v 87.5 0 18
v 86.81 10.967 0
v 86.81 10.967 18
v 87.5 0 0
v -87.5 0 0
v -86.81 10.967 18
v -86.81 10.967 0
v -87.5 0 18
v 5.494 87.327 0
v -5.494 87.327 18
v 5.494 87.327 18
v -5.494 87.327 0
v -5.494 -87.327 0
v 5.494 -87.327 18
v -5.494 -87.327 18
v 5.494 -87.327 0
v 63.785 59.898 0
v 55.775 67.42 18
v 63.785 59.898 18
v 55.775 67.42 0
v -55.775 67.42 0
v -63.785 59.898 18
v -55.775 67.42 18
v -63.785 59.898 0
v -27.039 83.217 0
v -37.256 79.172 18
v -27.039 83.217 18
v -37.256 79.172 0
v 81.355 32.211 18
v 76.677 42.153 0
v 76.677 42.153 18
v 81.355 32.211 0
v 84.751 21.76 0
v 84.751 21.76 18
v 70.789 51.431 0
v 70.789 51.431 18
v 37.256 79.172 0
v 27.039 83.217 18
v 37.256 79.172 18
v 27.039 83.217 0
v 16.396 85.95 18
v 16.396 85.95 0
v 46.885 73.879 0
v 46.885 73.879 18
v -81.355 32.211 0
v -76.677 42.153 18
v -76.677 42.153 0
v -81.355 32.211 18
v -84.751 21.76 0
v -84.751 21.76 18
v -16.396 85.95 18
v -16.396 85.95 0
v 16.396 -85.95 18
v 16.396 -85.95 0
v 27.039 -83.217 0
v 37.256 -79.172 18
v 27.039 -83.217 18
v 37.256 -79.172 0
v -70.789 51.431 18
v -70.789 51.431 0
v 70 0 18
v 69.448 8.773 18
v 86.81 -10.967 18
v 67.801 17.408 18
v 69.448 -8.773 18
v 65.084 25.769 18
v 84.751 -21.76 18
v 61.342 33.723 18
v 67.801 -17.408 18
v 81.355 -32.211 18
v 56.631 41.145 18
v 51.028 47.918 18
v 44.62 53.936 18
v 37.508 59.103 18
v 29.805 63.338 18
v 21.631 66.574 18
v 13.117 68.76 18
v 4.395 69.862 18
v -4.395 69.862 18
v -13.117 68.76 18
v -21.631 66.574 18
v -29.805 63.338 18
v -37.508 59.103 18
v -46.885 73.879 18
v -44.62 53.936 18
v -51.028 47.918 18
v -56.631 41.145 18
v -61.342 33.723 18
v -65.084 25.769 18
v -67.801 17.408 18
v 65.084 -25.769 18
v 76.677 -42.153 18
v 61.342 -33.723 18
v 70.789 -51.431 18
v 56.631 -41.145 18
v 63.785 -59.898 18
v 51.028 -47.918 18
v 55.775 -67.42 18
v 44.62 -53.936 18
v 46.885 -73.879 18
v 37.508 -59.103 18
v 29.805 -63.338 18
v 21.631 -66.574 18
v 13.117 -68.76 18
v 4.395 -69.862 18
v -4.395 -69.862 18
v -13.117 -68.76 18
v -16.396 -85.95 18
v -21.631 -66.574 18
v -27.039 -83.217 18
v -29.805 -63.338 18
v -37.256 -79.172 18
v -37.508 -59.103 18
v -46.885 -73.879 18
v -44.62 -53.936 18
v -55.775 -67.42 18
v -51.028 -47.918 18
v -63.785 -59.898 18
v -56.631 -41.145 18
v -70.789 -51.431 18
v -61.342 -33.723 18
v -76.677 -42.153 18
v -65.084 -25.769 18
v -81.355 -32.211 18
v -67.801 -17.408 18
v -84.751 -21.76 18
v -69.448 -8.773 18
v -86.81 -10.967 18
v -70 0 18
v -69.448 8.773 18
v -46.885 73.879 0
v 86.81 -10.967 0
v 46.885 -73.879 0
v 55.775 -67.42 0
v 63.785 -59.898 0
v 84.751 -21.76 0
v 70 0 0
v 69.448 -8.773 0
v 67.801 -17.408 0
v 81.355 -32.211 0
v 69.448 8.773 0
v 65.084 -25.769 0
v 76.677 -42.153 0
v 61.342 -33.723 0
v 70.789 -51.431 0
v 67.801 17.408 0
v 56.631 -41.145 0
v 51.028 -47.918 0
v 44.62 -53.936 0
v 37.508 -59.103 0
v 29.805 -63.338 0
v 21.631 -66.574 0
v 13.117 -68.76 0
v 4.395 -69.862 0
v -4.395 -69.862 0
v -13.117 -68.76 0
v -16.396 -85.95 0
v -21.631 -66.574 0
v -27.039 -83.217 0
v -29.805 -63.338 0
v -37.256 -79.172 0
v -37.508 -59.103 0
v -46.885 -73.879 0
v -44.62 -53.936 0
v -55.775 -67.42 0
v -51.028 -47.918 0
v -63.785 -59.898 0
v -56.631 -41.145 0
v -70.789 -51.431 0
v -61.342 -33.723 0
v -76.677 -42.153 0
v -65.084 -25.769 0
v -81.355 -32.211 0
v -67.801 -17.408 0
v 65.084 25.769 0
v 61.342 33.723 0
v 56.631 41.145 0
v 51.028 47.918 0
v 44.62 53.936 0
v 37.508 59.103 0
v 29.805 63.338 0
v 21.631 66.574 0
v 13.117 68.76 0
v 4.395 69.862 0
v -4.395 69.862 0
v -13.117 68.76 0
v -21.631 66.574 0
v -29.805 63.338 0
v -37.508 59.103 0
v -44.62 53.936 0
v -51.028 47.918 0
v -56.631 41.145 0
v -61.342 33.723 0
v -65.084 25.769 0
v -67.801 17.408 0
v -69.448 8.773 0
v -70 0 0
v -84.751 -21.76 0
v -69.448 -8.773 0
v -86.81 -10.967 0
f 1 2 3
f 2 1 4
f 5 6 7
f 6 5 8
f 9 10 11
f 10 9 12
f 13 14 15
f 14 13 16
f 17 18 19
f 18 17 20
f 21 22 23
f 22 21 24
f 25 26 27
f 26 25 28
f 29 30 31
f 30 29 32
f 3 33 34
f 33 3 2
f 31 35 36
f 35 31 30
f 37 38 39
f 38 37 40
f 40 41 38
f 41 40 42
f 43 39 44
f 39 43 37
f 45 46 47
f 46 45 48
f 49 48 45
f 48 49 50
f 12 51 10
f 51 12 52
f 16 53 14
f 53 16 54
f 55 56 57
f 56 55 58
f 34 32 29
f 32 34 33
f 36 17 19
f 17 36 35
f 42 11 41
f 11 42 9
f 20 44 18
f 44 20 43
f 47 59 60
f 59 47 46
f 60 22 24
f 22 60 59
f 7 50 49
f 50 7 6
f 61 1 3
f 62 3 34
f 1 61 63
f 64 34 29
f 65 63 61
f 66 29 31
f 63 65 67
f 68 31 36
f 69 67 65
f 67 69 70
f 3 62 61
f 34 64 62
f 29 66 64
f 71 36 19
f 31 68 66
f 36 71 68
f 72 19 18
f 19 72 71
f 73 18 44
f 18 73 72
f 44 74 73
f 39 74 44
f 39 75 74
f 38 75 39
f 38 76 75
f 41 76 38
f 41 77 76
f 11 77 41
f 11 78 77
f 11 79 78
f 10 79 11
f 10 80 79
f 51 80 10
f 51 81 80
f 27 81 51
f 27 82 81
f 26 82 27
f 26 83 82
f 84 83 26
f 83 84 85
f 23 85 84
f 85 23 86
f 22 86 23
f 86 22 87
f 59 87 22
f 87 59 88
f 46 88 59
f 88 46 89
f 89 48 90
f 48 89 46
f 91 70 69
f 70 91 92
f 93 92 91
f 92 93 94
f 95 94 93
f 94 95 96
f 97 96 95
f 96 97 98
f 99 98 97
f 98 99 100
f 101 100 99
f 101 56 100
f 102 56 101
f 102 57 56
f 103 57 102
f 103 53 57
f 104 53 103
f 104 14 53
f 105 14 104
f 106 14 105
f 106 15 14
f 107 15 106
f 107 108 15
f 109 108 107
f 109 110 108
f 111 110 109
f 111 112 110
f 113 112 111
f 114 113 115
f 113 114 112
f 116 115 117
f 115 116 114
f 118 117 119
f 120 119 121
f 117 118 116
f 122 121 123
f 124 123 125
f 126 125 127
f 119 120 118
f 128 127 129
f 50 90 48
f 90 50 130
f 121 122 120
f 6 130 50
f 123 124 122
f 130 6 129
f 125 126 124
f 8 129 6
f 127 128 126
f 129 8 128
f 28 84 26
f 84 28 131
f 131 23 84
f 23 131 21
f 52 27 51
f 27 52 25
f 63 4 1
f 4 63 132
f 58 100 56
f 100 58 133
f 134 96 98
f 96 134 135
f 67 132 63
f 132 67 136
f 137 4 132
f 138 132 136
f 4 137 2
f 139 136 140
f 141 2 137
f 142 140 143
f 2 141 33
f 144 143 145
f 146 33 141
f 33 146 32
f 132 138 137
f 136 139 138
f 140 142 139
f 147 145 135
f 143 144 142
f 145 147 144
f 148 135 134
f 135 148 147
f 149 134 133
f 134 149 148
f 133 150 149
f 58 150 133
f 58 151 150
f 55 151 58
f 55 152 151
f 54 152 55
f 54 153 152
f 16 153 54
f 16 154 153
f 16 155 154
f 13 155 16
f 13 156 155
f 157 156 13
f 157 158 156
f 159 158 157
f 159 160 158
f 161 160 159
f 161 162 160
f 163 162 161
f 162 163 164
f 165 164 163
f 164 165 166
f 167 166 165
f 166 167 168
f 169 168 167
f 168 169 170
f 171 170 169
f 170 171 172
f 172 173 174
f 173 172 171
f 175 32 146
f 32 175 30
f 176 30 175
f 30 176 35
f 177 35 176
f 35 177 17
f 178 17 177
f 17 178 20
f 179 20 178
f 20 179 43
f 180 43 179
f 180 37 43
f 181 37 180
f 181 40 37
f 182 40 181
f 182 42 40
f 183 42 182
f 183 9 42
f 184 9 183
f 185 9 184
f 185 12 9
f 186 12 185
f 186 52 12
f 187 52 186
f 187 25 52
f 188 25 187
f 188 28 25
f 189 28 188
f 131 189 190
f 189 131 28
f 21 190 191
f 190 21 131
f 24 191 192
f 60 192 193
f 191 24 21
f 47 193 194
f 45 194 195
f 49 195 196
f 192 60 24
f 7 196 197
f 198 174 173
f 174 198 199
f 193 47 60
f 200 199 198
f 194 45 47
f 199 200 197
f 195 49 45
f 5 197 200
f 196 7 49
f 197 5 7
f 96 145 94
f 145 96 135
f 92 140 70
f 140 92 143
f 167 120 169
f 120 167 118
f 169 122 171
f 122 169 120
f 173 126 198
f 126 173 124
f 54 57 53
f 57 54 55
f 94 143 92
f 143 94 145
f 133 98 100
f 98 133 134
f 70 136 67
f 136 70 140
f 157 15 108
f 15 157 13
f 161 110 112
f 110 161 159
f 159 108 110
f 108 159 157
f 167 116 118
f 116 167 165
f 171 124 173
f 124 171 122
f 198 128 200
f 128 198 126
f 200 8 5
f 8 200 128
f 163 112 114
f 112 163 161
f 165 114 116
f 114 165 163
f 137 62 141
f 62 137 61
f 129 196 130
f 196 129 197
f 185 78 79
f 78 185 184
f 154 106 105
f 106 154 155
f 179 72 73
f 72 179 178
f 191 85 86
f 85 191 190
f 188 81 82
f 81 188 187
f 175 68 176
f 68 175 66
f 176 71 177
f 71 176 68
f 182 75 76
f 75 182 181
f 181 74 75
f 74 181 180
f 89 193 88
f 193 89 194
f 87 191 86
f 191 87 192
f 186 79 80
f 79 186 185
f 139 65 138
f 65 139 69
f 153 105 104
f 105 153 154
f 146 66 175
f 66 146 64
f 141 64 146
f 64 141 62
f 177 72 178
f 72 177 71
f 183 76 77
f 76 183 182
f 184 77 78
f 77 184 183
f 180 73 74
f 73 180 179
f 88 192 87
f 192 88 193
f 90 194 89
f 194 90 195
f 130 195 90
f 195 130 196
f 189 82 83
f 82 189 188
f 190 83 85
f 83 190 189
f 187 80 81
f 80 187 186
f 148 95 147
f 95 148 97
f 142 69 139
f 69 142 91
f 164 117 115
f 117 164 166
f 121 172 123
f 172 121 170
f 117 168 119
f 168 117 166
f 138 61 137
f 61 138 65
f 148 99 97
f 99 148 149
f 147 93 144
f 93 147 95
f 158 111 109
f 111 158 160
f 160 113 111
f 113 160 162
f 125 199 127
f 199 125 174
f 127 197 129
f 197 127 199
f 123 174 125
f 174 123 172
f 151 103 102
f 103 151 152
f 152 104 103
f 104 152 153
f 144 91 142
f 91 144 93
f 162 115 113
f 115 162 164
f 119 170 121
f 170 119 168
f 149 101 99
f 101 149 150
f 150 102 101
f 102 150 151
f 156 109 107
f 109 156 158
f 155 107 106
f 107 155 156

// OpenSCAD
$fn = 50;


difference() {
	union() {
		translate(v = [0, 0, 0]) {
			rotate(a = [0, 0, 0]) {
				cylinder(h = 18, r = 87.5000000000);
			}
		}
	}
	union() {
		translate(v = [0, 0, 0]) {
			rotate(a = [0, 0, 0]) {
				cylinder(h = 18, r = 70.0000000000);
			}
		}
	}
}
